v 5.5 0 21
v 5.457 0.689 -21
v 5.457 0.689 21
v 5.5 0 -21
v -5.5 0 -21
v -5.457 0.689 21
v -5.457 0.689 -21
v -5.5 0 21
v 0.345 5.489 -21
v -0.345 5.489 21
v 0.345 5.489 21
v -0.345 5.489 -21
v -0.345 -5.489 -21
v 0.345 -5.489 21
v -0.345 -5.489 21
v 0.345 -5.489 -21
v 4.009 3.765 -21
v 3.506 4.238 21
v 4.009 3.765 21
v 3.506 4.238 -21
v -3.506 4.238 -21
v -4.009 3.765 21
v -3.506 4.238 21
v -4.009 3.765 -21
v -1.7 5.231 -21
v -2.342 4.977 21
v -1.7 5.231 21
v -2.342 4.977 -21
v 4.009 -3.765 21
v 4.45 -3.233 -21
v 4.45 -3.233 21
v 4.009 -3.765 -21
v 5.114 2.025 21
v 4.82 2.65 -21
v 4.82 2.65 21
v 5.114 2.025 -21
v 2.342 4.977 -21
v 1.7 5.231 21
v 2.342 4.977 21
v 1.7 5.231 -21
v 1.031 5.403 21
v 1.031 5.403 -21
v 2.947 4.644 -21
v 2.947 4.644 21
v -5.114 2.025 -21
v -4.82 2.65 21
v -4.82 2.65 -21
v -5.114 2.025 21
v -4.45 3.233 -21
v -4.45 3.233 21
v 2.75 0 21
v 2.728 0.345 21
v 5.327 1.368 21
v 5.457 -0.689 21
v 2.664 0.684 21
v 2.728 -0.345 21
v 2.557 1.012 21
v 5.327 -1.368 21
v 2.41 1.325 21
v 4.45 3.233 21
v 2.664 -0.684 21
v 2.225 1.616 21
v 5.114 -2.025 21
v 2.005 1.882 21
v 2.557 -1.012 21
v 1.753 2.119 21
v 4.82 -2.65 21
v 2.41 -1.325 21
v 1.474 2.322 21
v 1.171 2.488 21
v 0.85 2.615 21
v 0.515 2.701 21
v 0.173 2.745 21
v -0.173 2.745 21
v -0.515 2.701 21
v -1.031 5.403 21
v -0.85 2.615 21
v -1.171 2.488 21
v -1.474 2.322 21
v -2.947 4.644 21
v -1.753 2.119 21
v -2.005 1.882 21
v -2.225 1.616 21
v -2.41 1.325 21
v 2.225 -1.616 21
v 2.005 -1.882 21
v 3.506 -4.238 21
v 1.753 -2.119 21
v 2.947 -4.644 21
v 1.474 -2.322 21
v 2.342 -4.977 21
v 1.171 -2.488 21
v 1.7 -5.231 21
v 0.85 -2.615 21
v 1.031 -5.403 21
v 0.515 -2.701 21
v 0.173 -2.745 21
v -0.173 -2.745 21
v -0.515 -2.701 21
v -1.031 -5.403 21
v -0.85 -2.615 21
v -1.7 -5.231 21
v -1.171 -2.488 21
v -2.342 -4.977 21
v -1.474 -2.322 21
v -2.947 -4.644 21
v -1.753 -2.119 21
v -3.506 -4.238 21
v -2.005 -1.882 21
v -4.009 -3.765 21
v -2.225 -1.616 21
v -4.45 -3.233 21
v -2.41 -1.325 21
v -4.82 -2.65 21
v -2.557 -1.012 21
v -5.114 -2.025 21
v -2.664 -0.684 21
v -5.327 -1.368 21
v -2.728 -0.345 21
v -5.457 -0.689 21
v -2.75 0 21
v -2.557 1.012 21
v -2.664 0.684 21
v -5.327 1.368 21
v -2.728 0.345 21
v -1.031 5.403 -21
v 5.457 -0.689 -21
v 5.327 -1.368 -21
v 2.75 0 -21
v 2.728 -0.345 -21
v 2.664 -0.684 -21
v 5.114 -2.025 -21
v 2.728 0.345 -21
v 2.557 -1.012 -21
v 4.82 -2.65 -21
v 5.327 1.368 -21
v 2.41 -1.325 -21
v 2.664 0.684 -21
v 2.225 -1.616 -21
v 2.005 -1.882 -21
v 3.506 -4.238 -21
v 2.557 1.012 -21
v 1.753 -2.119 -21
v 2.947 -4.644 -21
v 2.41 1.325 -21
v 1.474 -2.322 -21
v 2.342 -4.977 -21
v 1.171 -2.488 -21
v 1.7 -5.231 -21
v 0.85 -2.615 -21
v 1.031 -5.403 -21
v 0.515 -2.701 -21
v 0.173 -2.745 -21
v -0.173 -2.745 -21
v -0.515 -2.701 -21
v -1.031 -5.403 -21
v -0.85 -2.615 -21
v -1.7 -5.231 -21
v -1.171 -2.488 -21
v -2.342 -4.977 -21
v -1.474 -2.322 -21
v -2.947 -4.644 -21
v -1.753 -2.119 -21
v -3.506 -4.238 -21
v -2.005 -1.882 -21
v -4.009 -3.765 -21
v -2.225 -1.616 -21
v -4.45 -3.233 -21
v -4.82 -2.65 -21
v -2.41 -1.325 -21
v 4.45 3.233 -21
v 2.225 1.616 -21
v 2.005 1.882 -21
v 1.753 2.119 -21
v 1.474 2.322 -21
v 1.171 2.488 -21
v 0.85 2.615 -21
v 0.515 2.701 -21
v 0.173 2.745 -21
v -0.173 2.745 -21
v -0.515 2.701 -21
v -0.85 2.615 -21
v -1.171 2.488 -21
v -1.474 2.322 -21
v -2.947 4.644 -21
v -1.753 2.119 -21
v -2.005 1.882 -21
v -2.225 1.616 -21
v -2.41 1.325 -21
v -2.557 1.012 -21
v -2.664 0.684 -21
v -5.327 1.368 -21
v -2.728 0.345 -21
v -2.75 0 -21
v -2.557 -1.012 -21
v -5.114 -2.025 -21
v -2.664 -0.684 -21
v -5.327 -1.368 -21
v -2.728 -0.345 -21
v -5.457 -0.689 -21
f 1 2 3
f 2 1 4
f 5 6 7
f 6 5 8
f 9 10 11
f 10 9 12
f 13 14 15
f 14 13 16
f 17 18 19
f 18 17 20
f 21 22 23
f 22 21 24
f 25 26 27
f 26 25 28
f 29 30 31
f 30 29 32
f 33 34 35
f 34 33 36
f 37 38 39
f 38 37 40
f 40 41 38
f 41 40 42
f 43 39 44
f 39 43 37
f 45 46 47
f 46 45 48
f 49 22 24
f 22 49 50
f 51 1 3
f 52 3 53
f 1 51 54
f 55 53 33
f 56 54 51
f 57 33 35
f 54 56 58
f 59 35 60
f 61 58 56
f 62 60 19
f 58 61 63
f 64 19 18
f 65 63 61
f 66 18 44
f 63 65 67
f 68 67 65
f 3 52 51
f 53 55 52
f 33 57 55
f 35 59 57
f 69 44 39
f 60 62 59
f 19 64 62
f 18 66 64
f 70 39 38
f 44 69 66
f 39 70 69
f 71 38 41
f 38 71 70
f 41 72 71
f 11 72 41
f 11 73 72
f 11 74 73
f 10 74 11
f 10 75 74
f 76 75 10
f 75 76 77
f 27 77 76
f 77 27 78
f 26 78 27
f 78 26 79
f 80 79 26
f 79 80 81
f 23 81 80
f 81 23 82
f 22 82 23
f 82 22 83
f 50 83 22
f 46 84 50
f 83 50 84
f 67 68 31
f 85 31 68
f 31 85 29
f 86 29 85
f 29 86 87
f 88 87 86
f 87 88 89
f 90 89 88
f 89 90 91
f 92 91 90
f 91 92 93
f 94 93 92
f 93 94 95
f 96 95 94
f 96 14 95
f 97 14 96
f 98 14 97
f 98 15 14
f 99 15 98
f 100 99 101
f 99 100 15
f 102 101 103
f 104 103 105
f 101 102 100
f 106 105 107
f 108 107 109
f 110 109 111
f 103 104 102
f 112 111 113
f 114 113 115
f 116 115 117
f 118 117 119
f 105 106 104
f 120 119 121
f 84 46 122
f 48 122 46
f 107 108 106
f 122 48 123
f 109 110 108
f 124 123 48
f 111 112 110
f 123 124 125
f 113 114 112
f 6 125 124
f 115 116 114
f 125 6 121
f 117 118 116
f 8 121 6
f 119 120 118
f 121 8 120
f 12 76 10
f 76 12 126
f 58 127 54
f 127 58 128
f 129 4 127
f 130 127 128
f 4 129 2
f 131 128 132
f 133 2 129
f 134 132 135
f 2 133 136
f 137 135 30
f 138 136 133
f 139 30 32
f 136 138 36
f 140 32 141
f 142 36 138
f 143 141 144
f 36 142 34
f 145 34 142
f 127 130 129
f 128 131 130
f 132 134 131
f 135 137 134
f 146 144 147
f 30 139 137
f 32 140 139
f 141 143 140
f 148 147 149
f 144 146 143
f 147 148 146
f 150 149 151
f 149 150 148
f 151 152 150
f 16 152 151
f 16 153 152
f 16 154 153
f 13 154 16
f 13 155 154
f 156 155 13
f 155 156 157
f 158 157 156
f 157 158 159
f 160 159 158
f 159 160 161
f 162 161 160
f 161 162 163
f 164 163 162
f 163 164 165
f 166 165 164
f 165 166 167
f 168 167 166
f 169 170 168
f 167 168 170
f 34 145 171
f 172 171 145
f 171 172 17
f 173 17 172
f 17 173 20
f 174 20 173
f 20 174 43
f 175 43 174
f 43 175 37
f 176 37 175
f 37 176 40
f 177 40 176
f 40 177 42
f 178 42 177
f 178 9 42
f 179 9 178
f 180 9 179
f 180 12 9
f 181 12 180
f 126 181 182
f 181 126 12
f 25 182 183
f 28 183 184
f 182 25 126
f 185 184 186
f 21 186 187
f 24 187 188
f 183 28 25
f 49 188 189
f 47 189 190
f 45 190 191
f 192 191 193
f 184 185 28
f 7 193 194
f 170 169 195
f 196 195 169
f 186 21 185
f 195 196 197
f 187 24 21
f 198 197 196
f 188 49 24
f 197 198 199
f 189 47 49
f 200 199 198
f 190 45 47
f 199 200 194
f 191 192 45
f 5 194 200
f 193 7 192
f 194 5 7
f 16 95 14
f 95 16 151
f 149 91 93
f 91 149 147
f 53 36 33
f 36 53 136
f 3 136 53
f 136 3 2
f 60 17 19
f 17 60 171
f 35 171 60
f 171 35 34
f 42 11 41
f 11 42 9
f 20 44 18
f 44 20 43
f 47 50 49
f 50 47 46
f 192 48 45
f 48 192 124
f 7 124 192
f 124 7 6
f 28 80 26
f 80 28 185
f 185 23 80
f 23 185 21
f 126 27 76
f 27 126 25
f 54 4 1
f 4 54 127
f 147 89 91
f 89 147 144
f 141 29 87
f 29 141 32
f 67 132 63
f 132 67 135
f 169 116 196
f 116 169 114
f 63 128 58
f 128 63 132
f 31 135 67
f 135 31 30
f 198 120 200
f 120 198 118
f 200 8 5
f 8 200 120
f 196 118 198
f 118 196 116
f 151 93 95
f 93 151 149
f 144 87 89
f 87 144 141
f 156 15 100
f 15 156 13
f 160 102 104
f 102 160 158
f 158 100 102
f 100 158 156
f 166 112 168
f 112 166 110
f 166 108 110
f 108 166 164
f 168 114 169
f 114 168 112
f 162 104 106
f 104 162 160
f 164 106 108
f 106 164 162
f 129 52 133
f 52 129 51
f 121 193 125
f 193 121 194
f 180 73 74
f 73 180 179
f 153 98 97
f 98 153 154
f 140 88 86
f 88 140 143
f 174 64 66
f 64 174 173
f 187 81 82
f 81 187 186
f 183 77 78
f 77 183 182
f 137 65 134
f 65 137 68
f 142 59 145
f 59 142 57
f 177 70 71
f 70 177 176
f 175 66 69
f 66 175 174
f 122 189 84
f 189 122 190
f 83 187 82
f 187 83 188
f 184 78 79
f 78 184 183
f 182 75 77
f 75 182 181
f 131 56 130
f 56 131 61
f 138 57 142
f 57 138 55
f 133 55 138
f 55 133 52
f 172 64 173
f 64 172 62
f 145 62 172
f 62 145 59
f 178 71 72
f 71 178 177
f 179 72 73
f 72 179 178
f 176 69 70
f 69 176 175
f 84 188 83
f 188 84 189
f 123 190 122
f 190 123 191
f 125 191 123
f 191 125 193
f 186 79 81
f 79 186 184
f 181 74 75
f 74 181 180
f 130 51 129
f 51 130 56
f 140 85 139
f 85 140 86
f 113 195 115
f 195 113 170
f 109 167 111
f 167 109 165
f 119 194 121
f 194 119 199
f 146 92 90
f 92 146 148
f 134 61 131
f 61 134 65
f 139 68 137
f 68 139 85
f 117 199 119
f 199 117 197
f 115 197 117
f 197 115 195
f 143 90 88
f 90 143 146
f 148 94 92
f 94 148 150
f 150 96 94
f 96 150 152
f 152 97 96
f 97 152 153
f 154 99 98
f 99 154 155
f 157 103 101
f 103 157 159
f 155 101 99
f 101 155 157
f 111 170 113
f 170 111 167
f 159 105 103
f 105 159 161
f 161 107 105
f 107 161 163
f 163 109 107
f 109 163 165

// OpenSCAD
$fn = 50;


difference() {
	union() {
		translate(v = [0, 0, -21.0000000000]) {
			cylinder(h = 42, r = 5.5000000000);
		}
	}
	union() {
		translate(v = [0, 0, -100.0000000000]) {
			cylinder(h = 200, r = 2.7500000000);
		}
	}
}
